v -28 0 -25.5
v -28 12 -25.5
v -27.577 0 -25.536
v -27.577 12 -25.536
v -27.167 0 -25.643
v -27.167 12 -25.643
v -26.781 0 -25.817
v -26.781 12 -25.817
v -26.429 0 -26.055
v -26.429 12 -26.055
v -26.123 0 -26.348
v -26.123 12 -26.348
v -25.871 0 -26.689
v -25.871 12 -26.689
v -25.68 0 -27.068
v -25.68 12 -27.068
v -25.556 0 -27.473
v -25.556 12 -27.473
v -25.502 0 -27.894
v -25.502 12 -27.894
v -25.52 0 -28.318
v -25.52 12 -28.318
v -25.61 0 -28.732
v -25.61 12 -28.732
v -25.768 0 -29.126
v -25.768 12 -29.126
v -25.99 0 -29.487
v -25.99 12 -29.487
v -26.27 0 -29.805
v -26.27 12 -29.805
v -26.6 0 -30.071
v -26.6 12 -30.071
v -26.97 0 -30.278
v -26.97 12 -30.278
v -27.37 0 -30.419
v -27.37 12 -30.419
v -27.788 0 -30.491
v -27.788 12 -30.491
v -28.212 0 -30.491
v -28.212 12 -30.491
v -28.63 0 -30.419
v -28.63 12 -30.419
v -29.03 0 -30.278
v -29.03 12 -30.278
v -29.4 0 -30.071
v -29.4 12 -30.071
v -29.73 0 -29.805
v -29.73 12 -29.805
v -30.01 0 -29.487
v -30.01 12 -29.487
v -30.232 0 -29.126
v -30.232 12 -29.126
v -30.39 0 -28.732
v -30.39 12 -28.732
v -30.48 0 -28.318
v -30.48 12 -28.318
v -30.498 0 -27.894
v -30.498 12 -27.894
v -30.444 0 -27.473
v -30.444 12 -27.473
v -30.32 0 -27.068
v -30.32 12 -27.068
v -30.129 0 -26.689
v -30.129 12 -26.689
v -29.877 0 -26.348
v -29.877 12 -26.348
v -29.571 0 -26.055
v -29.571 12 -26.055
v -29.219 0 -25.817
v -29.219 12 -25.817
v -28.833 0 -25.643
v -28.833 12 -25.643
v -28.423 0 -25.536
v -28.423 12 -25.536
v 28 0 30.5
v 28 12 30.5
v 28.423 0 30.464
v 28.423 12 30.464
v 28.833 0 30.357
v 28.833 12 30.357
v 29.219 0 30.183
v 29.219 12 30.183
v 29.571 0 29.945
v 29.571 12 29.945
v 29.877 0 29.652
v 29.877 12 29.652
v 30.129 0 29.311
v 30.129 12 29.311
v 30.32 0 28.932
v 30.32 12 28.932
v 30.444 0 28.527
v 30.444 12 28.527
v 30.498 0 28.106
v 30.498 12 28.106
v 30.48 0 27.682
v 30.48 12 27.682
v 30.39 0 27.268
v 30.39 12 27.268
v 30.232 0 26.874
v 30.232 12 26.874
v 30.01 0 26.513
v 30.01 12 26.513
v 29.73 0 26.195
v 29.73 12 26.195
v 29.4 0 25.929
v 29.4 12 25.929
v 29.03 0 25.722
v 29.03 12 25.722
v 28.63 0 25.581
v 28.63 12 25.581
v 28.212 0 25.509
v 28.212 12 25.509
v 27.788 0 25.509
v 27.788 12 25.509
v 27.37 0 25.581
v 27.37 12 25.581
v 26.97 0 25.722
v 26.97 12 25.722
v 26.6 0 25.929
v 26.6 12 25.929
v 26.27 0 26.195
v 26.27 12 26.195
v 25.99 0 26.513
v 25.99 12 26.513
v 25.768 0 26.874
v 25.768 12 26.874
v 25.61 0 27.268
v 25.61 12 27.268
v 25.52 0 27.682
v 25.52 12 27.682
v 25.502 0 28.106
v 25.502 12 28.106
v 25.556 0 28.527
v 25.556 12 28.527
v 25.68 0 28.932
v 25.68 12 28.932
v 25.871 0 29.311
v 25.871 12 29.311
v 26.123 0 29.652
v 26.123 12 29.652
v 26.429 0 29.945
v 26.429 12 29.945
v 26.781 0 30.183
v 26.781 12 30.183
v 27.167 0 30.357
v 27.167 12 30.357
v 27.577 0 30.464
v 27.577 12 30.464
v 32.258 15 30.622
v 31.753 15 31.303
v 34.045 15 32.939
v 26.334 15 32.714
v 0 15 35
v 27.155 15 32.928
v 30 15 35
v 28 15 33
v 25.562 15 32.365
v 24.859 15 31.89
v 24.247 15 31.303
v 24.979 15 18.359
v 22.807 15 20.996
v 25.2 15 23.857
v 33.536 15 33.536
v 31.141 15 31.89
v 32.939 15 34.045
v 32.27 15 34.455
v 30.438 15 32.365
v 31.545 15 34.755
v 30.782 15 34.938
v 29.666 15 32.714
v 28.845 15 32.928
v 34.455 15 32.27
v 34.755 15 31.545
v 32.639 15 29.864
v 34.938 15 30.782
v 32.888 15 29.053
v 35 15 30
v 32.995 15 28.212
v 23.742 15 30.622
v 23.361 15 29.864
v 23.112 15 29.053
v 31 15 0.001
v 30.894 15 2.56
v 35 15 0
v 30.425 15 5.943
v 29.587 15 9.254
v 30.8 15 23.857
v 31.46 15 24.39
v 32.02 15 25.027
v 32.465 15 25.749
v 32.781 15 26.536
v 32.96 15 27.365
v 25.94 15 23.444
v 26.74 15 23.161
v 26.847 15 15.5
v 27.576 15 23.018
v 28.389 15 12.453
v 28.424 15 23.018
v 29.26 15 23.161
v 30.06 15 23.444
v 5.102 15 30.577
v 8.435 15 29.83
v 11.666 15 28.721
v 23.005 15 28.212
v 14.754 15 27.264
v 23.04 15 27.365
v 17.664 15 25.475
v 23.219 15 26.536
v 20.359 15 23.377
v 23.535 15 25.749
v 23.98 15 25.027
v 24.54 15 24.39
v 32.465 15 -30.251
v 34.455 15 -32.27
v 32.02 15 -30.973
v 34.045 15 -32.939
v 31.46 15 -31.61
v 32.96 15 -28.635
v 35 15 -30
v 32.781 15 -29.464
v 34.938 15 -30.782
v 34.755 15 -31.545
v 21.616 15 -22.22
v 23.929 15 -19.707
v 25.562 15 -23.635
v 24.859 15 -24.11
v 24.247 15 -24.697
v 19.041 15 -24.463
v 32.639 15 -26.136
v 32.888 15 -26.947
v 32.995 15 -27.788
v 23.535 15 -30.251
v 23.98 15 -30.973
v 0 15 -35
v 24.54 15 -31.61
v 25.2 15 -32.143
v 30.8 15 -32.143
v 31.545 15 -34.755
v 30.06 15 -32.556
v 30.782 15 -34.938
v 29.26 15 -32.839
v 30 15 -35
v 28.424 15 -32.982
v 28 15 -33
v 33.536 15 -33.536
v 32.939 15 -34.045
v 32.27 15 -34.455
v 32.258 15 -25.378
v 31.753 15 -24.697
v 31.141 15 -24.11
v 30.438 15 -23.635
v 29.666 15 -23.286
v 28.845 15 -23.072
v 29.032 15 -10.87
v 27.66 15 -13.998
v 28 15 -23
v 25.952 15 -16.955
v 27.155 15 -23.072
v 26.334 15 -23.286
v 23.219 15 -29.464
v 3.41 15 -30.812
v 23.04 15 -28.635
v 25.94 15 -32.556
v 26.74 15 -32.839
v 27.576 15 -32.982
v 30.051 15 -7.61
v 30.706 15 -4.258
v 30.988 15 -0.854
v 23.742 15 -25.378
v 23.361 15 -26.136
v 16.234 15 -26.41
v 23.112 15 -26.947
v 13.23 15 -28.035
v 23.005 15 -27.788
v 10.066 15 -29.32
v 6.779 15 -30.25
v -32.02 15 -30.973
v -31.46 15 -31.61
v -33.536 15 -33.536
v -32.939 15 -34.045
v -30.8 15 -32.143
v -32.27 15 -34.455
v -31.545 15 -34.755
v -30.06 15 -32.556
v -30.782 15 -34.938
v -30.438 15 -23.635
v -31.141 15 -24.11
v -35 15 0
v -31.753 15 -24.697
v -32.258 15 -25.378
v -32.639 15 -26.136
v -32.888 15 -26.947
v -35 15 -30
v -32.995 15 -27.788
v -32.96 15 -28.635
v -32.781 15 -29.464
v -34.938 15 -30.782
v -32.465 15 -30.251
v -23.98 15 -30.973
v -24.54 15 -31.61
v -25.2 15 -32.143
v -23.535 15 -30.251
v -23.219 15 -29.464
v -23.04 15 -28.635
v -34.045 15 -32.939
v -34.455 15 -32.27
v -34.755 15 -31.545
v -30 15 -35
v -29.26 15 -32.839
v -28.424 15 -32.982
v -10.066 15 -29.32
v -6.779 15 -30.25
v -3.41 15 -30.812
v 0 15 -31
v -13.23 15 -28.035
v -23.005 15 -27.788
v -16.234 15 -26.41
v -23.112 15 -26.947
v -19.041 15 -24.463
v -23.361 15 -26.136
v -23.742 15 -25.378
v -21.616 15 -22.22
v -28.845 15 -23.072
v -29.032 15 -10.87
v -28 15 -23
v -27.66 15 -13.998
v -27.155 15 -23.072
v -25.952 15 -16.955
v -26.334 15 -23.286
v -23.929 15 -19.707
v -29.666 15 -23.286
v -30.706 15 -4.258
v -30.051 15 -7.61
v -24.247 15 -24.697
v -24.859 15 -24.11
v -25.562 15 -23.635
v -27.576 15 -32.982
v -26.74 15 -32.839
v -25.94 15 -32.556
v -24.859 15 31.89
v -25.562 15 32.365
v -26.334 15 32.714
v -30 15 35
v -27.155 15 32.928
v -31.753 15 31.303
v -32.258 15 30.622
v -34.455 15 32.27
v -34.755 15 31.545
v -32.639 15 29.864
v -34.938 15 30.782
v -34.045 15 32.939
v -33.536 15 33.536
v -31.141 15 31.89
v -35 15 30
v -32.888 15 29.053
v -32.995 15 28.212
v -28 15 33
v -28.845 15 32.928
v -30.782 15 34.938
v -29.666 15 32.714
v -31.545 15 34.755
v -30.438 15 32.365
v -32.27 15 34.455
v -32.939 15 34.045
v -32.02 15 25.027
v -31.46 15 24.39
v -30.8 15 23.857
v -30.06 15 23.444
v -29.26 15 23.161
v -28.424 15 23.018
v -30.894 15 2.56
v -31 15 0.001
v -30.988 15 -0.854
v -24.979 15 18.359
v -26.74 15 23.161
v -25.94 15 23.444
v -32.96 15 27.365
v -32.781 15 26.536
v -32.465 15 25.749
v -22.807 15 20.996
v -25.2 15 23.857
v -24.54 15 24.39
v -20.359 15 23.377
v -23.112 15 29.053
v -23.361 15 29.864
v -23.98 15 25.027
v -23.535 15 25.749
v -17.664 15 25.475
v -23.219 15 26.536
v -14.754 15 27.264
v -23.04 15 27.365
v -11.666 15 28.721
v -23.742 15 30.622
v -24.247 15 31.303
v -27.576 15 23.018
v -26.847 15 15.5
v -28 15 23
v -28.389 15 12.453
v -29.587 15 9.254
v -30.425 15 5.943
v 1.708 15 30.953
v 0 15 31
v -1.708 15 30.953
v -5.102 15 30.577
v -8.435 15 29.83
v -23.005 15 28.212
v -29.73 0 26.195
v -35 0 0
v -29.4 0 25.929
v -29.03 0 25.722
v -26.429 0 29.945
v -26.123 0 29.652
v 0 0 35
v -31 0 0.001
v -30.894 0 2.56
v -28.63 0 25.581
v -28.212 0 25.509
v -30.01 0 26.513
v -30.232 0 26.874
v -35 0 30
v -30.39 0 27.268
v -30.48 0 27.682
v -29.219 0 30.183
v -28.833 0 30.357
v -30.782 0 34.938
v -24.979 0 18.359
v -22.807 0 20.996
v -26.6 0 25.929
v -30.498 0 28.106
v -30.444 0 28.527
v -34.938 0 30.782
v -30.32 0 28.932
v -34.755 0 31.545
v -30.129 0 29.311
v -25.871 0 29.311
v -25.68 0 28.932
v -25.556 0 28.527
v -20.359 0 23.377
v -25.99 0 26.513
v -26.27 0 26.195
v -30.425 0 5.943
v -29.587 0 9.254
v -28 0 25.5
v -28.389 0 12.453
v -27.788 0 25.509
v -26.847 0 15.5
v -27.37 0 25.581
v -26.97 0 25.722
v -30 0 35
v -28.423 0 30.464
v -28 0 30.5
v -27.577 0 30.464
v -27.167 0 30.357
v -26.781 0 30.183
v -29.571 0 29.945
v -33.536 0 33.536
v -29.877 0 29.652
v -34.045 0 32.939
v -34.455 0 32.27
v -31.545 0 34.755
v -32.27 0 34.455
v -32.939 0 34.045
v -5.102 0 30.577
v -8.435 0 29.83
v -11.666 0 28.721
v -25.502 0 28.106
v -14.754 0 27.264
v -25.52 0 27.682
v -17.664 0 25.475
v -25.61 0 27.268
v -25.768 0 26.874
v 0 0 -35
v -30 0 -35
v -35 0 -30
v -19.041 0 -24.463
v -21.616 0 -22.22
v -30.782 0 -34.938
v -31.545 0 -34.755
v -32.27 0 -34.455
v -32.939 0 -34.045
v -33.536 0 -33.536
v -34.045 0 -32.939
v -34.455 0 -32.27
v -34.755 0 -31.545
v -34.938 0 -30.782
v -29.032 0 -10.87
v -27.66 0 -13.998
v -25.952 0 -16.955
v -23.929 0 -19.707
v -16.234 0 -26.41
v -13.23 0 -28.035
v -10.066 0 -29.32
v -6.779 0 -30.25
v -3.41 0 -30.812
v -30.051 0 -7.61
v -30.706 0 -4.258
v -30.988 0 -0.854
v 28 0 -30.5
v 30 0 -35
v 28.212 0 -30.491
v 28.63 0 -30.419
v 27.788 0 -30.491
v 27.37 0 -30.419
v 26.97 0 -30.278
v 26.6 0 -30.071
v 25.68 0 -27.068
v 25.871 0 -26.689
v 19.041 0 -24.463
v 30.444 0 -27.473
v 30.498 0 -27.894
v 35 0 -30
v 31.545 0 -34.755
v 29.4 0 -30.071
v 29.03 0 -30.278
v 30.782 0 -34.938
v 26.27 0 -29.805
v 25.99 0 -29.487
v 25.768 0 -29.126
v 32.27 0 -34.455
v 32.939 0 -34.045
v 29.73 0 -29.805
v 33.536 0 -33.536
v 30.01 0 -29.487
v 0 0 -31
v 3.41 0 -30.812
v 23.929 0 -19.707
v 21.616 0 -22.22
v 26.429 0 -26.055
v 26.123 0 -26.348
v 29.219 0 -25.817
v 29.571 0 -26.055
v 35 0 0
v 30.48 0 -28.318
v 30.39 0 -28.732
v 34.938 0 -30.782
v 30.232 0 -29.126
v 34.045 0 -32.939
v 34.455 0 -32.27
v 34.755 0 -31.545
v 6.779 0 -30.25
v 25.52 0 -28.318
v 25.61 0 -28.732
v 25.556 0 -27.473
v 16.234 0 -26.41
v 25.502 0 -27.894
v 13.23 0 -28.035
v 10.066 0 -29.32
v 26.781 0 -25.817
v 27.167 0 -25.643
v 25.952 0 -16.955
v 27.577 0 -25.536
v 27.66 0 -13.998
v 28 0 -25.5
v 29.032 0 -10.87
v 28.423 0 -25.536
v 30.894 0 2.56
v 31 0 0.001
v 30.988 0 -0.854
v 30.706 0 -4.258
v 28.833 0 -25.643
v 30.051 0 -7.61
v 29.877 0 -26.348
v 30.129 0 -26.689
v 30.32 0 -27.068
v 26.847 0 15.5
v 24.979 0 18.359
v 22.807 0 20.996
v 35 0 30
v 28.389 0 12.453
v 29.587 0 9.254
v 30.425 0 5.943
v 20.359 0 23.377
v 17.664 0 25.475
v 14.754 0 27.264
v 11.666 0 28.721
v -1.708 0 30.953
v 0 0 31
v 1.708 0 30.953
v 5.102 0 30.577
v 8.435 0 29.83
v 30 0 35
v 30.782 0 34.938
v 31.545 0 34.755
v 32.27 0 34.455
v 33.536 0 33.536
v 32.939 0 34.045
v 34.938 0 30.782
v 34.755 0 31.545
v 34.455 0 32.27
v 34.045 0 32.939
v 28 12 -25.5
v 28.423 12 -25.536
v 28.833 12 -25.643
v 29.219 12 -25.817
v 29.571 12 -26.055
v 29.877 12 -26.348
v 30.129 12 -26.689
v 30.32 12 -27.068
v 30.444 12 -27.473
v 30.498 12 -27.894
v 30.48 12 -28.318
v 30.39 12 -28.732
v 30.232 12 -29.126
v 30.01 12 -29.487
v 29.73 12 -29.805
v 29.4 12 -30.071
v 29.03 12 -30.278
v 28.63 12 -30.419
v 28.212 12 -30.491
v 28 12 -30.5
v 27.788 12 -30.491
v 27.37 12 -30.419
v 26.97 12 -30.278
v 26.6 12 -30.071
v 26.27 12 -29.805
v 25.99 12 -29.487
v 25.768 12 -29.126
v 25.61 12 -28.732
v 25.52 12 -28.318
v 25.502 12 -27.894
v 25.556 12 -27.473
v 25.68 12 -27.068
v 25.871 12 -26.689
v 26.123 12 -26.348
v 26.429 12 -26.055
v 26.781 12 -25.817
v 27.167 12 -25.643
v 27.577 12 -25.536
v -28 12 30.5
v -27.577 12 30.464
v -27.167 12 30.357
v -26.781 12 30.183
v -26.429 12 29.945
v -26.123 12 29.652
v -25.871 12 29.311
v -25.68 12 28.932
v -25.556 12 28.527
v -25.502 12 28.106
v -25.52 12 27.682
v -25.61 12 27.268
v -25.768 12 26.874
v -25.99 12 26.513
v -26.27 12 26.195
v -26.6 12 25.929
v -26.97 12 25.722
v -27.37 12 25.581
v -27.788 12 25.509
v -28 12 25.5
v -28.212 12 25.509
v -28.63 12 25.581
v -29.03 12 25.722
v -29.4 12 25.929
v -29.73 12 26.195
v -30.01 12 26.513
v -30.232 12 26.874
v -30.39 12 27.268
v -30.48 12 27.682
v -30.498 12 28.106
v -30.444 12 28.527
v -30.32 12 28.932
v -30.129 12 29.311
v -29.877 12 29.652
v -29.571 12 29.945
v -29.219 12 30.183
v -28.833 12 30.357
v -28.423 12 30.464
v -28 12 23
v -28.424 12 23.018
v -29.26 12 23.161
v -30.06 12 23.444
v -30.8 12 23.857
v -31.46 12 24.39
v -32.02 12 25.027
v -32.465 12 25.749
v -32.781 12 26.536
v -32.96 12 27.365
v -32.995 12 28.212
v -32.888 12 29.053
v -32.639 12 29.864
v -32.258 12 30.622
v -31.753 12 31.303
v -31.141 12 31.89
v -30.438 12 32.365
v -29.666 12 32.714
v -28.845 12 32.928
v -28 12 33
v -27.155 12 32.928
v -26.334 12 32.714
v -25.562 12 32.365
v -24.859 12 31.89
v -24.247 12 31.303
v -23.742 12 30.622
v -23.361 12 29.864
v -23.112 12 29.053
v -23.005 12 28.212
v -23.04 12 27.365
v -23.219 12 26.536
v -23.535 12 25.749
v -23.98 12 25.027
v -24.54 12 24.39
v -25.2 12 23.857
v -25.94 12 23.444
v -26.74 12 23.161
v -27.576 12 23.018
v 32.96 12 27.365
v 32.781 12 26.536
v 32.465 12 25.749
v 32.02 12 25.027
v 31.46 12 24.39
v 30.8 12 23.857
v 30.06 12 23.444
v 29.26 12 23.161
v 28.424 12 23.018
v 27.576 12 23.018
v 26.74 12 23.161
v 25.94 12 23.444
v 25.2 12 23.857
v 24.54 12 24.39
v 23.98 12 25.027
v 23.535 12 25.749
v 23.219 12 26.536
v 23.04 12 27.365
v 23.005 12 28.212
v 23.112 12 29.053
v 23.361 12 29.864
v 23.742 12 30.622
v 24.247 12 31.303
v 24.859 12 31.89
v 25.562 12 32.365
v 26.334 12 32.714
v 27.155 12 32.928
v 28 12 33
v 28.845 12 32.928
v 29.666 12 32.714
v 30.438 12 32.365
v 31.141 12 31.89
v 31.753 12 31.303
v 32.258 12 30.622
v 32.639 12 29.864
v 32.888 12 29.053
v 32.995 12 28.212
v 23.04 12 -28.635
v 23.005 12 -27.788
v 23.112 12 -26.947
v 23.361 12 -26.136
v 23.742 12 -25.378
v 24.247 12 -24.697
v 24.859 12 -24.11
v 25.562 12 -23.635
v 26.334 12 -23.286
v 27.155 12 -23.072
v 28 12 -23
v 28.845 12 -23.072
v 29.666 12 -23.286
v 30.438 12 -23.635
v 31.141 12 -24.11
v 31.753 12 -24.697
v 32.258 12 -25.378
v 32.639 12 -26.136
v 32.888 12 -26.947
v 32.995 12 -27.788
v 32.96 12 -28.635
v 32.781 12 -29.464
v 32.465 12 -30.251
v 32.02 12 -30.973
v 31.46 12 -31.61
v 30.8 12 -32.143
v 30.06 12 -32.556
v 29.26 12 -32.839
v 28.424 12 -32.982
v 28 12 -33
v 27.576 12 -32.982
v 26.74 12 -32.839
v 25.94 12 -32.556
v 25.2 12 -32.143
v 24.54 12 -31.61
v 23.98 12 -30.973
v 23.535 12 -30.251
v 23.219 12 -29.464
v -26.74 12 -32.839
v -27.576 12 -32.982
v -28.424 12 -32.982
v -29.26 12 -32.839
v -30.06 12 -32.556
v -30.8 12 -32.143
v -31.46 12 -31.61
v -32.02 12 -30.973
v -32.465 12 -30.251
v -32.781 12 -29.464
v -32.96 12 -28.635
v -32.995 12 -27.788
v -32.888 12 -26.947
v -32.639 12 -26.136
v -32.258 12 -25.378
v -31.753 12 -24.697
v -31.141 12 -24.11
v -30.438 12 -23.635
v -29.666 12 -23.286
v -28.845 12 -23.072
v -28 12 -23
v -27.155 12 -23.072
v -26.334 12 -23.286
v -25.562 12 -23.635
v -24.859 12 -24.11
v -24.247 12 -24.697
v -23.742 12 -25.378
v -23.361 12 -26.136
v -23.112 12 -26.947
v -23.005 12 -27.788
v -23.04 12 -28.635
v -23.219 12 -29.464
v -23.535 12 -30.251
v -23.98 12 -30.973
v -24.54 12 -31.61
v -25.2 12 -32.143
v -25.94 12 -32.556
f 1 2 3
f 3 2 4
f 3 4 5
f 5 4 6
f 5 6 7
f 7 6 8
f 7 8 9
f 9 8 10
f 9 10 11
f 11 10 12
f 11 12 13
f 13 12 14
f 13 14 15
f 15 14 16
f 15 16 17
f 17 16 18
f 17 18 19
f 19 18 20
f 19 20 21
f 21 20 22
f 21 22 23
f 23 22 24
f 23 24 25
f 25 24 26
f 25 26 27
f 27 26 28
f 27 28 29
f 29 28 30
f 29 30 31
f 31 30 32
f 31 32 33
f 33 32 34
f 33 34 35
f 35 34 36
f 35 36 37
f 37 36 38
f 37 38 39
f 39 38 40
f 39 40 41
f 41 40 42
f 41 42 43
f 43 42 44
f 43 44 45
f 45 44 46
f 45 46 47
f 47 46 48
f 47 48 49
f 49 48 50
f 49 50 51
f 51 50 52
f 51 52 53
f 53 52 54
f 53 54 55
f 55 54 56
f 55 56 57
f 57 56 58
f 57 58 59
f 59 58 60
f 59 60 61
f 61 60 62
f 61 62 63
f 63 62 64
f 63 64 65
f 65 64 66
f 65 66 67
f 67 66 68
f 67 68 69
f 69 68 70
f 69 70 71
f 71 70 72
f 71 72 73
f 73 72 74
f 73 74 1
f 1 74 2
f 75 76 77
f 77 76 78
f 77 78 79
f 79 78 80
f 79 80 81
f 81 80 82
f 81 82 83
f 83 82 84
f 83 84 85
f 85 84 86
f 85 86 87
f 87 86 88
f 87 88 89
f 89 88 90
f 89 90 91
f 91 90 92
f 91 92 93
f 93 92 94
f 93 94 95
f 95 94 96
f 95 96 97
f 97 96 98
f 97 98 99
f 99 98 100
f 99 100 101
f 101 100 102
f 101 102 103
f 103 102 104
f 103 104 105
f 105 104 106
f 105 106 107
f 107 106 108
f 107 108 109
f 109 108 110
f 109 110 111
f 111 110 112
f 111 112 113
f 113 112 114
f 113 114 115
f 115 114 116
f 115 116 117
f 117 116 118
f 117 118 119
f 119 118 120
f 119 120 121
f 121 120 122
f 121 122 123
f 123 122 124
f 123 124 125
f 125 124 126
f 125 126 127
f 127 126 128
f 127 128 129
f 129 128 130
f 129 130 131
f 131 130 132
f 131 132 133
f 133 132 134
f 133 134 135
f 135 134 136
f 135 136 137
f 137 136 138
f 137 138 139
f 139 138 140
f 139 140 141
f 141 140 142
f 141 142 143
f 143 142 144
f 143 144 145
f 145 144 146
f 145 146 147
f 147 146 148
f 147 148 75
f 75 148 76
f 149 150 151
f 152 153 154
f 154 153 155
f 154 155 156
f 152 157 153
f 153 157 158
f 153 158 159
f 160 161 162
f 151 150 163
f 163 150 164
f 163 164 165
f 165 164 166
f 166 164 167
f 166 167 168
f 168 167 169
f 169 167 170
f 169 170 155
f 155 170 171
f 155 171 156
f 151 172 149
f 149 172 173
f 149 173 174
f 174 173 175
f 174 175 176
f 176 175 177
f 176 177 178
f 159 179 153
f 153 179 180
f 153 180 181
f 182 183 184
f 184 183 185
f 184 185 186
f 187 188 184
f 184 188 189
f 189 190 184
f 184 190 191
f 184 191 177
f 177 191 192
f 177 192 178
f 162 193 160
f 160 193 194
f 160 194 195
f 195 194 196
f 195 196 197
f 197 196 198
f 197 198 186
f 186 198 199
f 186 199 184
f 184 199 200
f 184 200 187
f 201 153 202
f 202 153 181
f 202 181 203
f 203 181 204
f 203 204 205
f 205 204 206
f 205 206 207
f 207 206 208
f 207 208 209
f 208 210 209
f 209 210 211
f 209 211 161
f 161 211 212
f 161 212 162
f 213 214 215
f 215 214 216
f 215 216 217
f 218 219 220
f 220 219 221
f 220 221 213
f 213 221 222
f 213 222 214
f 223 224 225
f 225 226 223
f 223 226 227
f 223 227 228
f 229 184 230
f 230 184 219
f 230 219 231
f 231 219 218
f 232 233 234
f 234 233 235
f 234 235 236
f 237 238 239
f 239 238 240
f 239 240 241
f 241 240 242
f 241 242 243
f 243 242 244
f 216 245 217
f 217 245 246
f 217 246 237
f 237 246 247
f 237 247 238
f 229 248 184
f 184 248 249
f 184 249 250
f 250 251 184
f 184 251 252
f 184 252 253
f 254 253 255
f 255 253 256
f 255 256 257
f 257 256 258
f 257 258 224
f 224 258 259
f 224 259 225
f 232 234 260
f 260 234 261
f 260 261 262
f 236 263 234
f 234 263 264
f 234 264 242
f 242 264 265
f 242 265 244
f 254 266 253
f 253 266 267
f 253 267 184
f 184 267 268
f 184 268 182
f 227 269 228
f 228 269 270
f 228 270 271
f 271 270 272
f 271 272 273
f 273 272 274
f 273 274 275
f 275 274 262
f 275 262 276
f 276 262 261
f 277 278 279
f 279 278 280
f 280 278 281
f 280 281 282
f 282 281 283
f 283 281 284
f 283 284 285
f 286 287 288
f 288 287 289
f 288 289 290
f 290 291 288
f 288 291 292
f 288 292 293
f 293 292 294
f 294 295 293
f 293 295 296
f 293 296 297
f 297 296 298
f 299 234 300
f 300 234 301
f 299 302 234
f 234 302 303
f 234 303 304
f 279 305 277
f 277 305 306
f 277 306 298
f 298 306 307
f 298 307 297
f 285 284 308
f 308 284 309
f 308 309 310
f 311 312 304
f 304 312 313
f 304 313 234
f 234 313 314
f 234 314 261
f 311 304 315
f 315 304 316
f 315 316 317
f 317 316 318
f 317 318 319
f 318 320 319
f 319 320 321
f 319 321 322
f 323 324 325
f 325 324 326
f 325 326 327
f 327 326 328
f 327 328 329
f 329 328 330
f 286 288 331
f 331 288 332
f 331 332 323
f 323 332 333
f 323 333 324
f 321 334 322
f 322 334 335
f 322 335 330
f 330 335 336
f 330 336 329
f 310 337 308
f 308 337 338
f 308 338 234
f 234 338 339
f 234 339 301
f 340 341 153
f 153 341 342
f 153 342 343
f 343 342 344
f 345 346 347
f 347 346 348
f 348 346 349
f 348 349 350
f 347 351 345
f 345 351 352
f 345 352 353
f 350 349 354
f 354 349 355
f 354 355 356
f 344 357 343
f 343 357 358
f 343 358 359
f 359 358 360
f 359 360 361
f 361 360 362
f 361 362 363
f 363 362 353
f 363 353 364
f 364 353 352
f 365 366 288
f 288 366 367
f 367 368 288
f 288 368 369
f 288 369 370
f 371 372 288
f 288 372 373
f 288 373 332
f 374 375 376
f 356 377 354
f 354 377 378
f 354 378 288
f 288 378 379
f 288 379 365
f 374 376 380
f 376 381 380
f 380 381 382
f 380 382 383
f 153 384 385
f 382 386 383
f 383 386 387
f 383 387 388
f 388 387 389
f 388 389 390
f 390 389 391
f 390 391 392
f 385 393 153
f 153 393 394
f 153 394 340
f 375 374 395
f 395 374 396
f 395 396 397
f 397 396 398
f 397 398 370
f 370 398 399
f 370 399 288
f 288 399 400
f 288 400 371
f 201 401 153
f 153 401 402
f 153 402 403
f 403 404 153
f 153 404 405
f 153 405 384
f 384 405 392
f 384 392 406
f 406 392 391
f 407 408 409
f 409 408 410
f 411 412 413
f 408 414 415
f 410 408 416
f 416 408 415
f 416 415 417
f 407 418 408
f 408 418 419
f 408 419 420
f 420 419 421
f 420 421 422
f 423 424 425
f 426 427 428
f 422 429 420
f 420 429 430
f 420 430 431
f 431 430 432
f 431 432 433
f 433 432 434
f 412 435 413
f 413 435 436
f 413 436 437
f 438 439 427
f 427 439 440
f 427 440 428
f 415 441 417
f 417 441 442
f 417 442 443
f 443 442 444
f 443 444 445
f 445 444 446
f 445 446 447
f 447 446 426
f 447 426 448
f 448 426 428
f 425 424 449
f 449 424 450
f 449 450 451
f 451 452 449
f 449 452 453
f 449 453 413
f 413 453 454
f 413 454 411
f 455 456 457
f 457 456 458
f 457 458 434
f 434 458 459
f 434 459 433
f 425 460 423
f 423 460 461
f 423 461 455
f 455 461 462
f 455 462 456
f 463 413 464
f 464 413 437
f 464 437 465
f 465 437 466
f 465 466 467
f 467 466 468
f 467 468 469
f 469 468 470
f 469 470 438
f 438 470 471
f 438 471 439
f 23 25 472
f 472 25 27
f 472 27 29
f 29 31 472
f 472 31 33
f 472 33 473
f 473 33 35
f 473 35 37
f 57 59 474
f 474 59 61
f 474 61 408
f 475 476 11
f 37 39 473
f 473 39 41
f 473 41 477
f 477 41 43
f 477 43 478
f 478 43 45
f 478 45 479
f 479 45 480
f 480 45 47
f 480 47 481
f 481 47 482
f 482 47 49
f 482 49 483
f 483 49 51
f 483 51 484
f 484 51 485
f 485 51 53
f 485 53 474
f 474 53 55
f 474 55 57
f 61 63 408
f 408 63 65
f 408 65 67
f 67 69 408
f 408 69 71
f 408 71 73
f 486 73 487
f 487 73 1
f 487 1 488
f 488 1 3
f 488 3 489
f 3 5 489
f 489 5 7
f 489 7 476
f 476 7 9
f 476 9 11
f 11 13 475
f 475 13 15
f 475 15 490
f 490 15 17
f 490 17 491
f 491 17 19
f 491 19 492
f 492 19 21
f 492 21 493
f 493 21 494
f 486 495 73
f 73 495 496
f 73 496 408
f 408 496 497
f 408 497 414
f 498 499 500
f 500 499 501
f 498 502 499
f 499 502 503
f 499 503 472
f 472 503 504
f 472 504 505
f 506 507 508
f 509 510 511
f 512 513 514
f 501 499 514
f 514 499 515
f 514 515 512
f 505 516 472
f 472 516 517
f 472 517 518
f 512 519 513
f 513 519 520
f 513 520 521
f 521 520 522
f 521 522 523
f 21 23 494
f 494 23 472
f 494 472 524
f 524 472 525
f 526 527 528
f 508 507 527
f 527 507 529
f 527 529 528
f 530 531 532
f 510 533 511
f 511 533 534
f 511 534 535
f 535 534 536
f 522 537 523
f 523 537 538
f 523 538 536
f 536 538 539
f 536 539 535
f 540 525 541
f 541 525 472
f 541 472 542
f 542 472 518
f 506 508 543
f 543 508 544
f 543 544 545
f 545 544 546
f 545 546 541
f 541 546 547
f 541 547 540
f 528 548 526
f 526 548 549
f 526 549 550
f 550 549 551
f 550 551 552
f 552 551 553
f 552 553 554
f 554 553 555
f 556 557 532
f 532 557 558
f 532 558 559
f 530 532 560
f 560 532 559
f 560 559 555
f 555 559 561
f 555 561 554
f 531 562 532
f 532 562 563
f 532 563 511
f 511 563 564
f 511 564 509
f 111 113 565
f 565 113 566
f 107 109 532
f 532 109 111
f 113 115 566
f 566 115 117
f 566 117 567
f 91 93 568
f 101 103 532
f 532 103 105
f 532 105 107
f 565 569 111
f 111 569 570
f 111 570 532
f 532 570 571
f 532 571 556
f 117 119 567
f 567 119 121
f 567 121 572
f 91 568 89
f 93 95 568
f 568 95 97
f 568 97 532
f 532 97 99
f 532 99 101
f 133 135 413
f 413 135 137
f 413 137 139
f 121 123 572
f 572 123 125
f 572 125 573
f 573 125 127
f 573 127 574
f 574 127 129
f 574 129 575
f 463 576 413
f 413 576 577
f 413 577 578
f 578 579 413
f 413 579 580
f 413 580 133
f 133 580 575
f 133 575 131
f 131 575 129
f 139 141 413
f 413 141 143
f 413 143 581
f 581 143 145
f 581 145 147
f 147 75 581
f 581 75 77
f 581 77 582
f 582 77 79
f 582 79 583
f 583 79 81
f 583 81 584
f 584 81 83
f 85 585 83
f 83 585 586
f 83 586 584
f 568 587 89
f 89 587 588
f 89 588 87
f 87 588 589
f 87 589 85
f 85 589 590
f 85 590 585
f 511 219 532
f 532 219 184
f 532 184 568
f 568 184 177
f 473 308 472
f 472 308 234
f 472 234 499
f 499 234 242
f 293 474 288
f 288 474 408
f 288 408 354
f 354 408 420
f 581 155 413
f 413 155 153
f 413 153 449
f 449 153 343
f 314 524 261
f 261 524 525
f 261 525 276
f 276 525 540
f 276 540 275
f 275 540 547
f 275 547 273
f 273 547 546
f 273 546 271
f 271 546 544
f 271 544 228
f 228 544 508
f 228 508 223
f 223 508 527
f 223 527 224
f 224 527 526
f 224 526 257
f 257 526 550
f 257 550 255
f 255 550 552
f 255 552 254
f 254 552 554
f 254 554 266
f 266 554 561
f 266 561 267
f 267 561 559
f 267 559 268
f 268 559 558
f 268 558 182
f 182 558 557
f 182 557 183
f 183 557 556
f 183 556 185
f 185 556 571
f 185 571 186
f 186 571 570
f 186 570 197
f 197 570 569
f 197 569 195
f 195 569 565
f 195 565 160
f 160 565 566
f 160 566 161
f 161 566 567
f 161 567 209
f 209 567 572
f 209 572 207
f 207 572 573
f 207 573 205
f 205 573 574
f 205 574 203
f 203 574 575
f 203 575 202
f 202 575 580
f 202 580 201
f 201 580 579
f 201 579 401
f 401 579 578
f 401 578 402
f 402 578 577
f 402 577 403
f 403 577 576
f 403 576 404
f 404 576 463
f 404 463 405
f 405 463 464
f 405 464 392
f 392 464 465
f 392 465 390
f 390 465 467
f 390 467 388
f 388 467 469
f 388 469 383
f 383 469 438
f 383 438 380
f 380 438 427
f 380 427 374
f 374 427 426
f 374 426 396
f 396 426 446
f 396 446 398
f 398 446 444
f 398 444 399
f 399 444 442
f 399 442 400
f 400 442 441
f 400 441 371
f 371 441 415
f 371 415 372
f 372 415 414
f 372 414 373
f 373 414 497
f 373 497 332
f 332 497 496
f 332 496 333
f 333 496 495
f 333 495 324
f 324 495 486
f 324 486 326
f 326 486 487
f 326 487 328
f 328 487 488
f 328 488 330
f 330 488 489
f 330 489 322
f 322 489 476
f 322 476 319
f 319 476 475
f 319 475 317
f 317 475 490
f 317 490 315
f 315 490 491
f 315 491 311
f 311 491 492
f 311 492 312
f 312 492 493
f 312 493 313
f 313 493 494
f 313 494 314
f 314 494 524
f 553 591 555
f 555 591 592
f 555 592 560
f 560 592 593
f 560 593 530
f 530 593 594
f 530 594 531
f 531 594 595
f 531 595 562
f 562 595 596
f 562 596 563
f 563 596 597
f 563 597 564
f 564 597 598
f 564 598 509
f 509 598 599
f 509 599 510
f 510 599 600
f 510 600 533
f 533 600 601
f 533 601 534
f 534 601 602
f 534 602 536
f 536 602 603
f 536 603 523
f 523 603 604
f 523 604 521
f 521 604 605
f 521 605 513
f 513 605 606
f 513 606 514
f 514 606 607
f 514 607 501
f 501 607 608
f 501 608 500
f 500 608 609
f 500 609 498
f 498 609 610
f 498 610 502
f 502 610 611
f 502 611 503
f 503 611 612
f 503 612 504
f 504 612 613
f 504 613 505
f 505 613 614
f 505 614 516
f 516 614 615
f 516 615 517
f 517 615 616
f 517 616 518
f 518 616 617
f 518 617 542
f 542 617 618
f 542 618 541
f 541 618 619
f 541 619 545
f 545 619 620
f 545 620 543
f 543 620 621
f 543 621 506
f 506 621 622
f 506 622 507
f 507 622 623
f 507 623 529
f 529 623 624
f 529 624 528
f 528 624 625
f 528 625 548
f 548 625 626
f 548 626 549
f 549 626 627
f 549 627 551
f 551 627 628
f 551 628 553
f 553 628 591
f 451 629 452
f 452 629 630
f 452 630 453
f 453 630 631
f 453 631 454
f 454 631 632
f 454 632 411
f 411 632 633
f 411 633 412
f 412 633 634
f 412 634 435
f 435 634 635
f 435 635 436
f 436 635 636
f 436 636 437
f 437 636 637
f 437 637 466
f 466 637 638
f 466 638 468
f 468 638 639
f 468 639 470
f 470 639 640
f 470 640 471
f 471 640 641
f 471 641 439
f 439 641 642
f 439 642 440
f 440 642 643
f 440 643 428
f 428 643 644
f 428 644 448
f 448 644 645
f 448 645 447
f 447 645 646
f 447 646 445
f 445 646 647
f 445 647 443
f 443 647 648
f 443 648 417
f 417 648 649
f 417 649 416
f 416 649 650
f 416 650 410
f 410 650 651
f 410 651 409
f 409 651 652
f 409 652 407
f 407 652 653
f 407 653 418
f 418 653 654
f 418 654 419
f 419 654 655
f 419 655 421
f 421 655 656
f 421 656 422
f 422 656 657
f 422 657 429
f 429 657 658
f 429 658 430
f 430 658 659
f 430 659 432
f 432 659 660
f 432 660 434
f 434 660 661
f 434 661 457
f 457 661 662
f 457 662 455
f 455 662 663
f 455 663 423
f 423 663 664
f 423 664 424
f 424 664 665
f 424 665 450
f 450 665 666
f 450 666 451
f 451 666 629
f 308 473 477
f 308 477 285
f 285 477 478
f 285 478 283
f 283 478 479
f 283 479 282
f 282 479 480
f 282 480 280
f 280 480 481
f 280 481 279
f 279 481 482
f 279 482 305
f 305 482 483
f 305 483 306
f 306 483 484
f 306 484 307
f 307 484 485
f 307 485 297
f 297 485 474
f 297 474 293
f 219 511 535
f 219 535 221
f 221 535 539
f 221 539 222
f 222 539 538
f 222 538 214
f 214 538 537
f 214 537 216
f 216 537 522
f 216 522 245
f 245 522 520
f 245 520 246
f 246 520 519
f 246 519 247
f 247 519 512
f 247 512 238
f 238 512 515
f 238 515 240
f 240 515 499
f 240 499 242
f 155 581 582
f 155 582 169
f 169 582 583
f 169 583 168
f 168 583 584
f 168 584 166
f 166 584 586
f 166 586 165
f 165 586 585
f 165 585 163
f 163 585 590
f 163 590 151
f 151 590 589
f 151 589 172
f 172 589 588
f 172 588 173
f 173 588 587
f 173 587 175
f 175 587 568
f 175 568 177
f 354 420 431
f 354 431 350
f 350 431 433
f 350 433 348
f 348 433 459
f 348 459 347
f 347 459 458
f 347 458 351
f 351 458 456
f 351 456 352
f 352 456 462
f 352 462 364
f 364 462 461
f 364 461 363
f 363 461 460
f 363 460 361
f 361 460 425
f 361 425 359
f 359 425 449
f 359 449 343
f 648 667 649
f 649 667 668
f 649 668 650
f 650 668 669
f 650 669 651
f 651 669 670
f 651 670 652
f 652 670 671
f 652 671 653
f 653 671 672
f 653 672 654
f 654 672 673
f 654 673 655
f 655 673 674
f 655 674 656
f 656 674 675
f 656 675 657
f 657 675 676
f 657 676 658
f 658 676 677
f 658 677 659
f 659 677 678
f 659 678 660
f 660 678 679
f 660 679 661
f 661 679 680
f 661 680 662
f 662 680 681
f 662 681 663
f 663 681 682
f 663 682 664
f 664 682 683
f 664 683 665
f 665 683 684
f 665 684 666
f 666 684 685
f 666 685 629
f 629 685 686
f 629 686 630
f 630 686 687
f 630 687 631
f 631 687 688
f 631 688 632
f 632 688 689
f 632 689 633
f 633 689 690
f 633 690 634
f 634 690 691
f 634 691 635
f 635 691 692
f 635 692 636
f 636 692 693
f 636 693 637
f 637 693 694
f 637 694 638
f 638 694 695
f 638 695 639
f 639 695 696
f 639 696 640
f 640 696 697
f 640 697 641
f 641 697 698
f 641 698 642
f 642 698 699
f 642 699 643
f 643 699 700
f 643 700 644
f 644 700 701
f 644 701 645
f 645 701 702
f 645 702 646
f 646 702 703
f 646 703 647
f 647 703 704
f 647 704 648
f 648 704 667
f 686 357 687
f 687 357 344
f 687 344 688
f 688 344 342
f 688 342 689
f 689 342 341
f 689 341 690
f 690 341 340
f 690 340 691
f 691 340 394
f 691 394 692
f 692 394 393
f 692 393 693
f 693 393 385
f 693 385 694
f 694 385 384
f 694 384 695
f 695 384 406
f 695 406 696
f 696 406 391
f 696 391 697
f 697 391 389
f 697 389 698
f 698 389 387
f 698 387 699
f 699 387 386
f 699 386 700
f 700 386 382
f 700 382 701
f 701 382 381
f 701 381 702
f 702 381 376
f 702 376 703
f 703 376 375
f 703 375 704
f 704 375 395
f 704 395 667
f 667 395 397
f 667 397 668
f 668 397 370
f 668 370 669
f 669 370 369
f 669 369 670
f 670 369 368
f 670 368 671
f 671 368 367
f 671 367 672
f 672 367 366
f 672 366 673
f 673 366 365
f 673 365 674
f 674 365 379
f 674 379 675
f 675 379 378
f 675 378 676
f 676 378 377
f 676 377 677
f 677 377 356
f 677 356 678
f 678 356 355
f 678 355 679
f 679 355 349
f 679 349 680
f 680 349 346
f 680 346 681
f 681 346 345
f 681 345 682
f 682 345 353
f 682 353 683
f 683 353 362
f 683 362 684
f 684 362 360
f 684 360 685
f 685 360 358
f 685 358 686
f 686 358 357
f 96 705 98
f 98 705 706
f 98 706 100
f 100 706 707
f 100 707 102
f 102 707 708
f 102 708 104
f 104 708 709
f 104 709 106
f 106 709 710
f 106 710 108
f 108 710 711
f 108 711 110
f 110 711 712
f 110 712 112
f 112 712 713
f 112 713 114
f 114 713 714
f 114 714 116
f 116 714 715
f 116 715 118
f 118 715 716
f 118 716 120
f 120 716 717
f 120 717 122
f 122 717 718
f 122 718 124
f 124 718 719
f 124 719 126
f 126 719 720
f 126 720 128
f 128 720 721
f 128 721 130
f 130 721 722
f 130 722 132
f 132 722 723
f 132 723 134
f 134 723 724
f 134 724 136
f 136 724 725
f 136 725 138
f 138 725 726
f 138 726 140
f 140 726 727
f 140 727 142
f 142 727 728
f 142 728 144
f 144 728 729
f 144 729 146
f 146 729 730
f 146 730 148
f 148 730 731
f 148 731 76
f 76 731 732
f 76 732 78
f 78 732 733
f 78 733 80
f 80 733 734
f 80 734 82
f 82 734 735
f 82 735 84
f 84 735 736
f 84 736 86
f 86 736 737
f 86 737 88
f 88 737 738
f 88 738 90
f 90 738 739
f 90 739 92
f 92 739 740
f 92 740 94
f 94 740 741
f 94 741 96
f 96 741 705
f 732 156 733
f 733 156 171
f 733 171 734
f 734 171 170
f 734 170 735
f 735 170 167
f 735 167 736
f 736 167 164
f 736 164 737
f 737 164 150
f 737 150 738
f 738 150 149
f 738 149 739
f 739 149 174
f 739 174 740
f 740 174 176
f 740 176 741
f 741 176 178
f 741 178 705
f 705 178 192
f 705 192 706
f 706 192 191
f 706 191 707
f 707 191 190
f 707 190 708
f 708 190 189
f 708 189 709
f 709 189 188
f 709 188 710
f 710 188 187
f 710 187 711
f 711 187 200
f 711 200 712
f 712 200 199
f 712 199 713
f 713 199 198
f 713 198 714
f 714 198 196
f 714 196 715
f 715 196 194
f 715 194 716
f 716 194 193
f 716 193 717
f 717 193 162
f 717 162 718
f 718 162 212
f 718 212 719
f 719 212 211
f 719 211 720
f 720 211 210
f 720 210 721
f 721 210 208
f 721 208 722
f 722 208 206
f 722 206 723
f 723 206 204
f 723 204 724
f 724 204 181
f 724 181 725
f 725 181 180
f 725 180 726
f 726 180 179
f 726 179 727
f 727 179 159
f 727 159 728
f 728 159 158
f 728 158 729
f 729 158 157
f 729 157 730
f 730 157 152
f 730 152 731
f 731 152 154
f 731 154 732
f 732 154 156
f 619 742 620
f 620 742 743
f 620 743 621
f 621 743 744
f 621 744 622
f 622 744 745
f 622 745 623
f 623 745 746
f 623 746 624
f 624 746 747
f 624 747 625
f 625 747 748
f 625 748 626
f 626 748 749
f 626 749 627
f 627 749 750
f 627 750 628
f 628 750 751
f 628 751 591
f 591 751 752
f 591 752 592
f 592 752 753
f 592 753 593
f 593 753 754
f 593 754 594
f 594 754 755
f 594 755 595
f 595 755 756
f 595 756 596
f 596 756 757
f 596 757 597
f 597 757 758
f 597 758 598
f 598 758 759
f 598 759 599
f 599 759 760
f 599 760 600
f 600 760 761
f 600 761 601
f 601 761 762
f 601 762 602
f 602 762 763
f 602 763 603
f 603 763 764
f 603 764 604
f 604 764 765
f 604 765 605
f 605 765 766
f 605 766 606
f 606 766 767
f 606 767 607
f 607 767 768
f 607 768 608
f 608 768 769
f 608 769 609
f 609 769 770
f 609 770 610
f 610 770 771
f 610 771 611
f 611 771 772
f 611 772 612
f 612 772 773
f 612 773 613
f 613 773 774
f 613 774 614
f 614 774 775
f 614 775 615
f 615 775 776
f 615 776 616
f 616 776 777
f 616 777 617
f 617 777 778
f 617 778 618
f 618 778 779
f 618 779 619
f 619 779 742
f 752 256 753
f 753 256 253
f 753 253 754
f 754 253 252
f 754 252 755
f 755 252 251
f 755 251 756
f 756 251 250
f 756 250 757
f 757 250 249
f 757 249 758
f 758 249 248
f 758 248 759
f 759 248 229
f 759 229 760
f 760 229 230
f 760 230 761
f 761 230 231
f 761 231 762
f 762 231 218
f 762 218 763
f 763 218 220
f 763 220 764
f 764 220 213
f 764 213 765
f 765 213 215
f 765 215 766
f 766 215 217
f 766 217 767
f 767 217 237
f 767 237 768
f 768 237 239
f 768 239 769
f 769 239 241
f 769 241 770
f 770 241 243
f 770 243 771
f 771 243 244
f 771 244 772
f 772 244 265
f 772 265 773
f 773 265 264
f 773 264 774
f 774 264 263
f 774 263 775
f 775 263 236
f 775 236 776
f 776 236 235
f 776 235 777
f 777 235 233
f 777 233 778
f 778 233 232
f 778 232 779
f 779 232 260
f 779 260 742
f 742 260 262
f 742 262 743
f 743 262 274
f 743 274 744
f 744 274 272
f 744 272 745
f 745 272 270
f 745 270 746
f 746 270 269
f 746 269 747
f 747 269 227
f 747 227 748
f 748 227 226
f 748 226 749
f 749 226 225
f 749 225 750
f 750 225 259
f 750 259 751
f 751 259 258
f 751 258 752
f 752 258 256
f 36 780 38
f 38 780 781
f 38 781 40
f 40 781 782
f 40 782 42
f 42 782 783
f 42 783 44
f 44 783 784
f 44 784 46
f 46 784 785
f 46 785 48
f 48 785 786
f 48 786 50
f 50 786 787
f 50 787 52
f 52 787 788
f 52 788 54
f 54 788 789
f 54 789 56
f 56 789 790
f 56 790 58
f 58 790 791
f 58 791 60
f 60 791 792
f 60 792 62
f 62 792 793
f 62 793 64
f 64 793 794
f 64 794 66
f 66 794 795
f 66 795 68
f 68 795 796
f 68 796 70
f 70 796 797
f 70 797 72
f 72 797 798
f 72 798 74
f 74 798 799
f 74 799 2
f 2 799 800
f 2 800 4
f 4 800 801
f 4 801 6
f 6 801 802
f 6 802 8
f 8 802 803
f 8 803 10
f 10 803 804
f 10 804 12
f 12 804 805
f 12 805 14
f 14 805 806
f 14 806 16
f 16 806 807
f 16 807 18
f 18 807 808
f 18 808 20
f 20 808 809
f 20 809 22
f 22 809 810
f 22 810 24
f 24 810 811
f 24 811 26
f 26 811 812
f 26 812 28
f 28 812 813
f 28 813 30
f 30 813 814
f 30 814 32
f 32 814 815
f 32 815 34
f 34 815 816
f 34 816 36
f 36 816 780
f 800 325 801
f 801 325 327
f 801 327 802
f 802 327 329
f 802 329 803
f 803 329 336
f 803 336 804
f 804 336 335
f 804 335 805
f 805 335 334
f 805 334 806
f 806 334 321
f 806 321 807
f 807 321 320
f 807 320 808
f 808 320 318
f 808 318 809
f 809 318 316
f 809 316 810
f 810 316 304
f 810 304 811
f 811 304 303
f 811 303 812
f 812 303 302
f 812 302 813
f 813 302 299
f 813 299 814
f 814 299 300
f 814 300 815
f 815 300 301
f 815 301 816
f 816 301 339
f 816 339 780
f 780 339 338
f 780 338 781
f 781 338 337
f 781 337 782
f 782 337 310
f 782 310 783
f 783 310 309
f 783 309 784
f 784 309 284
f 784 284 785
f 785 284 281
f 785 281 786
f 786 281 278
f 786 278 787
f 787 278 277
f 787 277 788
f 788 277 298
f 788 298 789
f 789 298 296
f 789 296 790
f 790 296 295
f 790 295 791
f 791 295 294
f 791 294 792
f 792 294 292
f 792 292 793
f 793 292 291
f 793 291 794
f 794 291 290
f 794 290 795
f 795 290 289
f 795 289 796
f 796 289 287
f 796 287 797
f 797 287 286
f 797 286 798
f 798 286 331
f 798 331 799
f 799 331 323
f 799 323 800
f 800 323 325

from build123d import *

# Parameters (mm, degrees)
SKETCH1_W           = 70
SKETCH1_H           = 70
SKETCH1_R           = 31
BOSS_EXTRUDE1_DEPTH = 15
SKETCH2_R           = 2.5
CUT_EXTRUDE1_DEPTH  = 52.720402164
FILLET1_R           = 5
SKETCH3_R           = 5
CUT_EXTRUDE2_DEPTH  = 3


with BuildPart() as part:
    # Sketch1 → Boss-Extrude1 (new body)
    with BuildSketch(Plane(origin=(0, 0, 0), x_dir=(1, 0, 0), z_dir=(0, 1, 0))):
        Rectangle(SKETCH1_W, SKETCH1_H)
        with Locations(Location((0, 0, 0), (0, 0, 270))):
            Circle(SKETCH1_R, mode=Mode.SUBTRACT)
    extrude(amount=BOSS_EXTRUDE1_DEPTH)

    # Sketch2 → Cut-Extrude1 (cut, through all)
    with BuildSketch(Plane(origin=(0, 15, 0), x_dir=(1, 0, 0), z_dir=(0, 1, 0))):
        with Locations(Location((-28, 28, 0), (0, 0, 270))):
            Circle(SKETCH2_R)
        with Locations(Location((28, 28, 0), (0, 0, 90))):
            Circle(SKETCH2_R)
        with Locations(Location((28, -28, 0), (0, 0, 270))):
            Circle(SKETCH2_R)
        with Locations(Location((-28, -28, 0), (0, 0, 90))):
            Circle(SKETCH2_R)
    extrude(amount=-CUT_EXTRUDE1_DEPTH, mode=Mode.SUBTRACT)

    # Fillet1
    fillet1_edges = [part.edges().sort_by_distance(p)[0] for p in [
        (35, 7.5, 35),
        (-35, 7.5, 35),
        (-35, 7.5, -35),
        (35, 7.5, -35),
    ]]
    fillet(fillet1_edges, radius=FILLET1_R)

    # Sketch3 → Cut-Extrude2 (cut)
    with BuildSketch(Plane(origin=(0, 15, 0), x_dir=(1, 0, 0), z_dir=(0, 1, 0))):
        with Locations(Location((-28, 28, 0), (0, 0, 270))):
            Circle(SKETCH3_R)
        with Locations(Location((-28, -28, 0), (0, 0, 90))):
            Circle(SKETCH3_R)
        with Locations(Location((28, 28, 0), (0, 0, 90))):
            Circle(SKETCH3_R)
        with Locations(Location((28, -28, 0), (0, 0, 270))):
            Circle(SKETCH3_R)
    extrude(amount=-CUT_EXTRUDE2_DEPTH, mode=Mode.SUBTRACT)


solid = part.part
